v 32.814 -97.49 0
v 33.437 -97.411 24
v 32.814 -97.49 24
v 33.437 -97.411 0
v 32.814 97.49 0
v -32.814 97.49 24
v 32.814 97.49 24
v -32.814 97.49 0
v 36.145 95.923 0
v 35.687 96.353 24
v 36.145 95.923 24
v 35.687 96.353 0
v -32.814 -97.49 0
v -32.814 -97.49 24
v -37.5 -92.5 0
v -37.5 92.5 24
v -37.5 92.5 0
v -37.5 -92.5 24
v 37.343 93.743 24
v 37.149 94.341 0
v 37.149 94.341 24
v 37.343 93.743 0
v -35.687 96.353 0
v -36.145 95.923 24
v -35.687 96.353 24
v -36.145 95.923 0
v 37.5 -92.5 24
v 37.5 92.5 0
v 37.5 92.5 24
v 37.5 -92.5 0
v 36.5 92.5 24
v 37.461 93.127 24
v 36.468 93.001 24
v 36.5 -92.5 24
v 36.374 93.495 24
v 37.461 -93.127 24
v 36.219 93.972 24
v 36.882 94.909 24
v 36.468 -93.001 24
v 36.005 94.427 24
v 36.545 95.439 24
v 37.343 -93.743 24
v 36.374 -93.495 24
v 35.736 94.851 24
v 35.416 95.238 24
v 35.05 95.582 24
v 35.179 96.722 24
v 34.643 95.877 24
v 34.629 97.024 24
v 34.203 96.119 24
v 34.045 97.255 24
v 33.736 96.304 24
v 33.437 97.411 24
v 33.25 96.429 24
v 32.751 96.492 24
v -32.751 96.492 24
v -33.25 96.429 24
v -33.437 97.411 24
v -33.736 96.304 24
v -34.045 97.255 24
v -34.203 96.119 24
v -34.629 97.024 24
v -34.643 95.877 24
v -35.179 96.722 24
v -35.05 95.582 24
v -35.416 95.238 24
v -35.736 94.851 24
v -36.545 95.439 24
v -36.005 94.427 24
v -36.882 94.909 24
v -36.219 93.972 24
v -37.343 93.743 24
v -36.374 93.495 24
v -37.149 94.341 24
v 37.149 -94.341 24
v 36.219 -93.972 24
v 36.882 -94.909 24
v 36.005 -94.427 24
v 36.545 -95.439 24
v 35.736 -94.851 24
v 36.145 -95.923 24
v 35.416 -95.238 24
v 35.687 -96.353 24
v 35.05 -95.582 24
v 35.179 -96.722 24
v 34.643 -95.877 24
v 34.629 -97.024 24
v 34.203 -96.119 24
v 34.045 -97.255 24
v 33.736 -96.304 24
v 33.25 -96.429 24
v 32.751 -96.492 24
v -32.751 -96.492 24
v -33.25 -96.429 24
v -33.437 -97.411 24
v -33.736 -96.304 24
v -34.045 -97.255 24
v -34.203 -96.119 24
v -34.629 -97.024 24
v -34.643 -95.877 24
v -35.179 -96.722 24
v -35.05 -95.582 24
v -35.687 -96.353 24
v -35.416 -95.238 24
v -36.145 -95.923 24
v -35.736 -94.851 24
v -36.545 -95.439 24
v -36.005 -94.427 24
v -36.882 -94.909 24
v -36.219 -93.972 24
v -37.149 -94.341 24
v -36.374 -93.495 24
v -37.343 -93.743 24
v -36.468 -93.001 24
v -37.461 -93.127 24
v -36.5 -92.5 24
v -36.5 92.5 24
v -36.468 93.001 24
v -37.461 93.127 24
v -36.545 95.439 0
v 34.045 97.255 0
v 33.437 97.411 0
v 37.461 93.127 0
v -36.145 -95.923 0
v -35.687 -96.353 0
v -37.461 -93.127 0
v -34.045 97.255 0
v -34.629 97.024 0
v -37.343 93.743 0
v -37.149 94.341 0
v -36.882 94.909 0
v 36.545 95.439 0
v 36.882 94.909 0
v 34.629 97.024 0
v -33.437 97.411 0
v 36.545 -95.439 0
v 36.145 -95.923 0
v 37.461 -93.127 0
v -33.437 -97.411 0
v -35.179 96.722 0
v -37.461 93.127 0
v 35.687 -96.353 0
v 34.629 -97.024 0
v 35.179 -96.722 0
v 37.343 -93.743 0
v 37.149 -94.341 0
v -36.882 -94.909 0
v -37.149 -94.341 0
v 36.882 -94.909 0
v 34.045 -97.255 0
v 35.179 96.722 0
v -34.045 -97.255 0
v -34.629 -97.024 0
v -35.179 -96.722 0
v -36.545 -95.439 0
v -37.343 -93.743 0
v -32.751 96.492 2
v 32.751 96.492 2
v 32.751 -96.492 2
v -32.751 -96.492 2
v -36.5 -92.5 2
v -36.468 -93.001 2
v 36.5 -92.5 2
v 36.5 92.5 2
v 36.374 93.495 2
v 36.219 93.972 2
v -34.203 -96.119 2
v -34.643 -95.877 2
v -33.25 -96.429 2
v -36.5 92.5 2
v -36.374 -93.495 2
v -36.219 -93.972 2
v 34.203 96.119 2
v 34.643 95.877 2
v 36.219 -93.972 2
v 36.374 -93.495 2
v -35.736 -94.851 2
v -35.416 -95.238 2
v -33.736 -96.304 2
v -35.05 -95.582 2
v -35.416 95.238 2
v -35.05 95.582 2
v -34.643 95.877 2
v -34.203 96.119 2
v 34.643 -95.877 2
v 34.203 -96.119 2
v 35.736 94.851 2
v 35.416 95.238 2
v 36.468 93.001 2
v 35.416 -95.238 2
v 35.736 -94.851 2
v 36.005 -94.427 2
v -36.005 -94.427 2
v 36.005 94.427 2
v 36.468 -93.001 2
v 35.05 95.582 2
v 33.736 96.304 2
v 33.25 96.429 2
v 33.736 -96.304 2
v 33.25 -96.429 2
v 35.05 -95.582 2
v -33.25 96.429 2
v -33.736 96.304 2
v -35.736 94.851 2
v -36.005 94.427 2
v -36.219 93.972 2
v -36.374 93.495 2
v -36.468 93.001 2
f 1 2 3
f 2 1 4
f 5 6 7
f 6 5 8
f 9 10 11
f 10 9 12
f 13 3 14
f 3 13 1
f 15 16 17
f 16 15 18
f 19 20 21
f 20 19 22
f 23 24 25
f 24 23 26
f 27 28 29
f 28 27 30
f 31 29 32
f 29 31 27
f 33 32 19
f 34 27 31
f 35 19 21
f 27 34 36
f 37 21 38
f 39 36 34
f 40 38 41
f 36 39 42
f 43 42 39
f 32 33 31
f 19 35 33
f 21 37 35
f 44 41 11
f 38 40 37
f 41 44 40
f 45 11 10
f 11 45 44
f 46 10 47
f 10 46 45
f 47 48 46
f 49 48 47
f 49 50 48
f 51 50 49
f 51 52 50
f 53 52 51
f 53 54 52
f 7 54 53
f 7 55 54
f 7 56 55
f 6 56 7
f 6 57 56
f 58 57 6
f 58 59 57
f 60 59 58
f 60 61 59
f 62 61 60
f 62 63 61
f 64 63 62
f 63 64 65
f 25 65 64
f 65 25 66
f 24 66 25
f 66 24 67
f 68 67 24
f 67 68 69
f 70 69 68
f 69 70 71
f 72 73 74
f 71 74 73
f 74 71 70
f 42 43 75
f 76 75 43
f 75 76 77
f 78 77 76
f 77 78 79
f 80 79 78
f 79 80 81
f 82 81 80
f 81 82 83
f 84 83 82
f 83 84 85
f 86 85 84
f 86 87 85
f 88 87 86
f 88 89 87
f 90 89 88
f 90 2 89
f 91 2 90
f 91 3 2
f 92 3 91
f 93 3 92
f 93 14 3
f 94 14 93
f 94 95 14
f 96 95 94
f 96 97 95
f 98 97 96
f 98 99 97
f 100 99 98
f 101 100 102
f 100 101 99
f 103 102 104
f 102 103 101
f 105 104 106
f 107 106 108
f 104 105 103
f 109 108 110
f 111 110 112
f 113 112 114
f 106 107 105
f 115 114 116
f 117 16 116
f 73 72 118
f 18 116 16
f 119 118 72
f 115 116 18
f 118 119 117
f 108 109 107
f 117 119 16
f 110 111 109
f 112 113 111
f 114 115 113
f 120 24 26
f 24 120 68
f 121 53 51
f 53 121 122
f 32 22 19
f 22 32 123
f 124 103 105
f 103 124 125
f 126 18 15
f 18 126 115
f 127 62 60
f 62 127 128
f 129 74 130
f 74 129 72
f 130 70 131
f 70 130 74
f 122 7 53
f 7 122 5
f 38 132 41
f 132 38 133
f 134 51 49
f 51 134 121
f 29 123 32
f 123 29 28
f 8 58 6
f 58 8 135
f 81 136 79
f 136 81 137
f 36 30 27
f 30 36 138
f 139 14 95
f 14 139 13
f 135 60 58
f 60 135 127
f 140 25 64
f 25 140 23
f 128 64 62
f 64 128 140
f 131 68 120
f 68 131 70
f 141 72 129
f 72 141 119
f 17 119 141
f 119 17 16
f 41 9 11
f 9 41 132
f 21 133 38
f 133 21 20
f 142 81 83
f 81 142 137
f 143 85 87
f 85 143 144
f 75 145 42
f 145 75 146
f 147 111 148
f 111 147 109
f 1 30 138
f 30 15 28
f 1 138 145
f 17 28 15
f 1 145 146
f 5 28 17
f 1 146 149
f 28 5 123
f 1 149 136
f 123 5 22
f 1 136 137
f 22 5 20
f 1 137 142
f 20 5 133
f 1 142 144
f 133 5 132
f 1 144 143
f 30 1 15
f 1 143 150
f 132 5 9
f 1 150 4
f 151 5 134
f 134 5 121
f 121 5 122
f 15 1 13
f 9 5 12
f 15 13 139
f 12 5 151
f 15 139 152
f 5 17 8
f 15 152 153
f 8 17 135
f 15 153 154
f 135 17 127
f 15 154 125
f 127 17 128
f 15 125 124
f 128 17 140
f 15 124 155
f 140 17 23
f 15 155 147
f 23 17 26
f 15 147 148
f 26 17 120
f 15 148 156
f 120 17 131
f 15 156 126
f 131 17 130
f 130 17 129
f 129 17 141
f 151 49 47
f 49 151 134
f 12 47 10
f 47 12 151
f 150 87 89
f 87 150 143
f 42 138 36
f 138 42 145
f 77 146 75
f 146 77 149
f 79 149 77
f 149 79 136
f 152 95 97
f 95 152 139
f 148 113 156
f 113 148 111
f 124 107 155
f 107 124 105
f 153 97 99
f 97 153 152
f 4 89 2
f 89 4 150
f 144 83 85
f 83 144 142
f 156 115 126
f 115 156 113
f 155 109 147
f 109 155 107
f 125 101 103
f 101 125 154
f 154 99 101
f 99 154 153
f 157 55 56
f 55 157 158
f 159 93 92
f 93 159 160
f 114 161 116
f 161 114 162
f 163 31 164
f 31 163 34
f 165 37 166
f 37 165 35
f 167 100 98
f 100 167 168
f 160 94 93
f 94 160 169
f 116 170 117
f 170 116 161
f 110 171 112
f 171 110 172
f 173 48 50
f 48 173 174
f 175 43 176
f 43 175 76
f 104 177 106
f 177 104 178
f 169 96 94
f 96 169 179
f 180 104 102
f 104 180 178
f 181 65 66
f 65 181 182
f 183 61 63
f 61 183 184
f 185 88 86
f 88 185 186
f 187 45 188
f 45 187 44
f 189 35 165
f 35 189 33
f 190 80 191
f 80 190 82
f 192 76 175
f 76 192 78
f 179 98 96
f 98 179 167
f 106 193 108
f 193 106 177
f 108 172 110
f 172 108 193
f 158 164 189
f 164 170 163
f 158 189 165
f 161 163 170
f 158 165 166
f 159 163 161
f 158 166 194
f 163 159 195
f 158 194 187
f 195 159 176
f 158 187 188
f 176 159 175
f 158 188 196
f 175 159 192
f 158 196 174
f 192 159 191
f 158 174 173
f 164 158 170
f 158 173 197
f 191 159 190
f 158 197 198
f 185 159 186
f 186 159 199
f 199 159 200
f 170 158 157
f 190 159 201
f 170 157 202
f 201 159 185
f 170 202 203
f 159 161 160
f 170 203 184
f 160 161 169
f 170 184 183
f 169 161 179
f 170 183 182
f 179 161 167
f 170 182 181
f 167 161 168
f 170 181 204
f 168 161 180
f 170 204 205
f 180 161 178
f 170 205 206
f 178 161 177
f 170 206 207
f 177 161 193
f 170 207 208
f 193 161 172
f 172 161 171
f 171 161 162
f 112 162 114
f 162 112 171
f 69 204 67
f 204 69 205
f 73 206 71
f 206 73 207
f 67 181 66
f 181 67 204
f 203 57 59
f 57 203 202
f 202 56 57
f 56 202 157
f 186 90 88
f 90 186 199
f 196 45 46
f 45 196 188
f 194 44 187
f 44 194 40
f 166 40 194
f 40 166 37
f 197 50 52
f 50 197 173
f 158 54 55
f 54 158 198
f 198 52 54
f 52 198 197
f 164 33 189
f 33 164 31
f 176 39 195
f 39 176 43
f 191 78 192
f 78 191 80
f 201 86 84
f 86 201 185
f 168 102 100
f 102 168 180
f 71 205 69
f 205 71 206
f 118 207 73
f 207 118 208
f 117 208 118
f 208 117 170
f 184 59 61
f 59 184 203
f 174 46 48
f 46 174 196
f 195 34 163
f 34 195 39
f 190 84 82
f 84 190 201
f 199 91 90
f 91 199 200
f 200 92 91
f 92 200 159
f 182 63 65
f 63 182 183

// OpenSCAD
$fn = 50;


difference() {
	union() {
		hull() {
			translate(v = [-32.5000000000, 92.5000000000, 0]) {
				cylinder(h = 24, r = 5);
			}
			translate(v = [32.5000000000, 92.5000000000, 0]) {
				cylinder(h = 24, r = 5);
			}
			translate(v = [-32.5000000000, -92.5000000000, 0]) {
				cylinder(h = 24, r = 5);
			}
			translate(v = [32.5000000000, -92.5000000000, 0]) {
				cylinder(h = 24, r = 5);
			}
		}
	}
	union() {
		translate(v = [0, 0, 2]) {
			hull() {
				translate(v = [-32.5000000000, 92.5000000000, 0]) {
					cylinder(h = 22, r = 4);
				}
				translate(v = [32.5000000000, 92.5000000000, 0]) {
					cylinder(h = 22, r = 4);
				}
				translate(v = [-32.5000000000, -92.5000000000, 0]) {
					cylinder(h = 22, r = 4);
				}
				translate(v = [32.5000000000, -92.5000000000, 0]) {
					cylinder(h = 22, r = 4);
				}
			}
		}
	}
}
